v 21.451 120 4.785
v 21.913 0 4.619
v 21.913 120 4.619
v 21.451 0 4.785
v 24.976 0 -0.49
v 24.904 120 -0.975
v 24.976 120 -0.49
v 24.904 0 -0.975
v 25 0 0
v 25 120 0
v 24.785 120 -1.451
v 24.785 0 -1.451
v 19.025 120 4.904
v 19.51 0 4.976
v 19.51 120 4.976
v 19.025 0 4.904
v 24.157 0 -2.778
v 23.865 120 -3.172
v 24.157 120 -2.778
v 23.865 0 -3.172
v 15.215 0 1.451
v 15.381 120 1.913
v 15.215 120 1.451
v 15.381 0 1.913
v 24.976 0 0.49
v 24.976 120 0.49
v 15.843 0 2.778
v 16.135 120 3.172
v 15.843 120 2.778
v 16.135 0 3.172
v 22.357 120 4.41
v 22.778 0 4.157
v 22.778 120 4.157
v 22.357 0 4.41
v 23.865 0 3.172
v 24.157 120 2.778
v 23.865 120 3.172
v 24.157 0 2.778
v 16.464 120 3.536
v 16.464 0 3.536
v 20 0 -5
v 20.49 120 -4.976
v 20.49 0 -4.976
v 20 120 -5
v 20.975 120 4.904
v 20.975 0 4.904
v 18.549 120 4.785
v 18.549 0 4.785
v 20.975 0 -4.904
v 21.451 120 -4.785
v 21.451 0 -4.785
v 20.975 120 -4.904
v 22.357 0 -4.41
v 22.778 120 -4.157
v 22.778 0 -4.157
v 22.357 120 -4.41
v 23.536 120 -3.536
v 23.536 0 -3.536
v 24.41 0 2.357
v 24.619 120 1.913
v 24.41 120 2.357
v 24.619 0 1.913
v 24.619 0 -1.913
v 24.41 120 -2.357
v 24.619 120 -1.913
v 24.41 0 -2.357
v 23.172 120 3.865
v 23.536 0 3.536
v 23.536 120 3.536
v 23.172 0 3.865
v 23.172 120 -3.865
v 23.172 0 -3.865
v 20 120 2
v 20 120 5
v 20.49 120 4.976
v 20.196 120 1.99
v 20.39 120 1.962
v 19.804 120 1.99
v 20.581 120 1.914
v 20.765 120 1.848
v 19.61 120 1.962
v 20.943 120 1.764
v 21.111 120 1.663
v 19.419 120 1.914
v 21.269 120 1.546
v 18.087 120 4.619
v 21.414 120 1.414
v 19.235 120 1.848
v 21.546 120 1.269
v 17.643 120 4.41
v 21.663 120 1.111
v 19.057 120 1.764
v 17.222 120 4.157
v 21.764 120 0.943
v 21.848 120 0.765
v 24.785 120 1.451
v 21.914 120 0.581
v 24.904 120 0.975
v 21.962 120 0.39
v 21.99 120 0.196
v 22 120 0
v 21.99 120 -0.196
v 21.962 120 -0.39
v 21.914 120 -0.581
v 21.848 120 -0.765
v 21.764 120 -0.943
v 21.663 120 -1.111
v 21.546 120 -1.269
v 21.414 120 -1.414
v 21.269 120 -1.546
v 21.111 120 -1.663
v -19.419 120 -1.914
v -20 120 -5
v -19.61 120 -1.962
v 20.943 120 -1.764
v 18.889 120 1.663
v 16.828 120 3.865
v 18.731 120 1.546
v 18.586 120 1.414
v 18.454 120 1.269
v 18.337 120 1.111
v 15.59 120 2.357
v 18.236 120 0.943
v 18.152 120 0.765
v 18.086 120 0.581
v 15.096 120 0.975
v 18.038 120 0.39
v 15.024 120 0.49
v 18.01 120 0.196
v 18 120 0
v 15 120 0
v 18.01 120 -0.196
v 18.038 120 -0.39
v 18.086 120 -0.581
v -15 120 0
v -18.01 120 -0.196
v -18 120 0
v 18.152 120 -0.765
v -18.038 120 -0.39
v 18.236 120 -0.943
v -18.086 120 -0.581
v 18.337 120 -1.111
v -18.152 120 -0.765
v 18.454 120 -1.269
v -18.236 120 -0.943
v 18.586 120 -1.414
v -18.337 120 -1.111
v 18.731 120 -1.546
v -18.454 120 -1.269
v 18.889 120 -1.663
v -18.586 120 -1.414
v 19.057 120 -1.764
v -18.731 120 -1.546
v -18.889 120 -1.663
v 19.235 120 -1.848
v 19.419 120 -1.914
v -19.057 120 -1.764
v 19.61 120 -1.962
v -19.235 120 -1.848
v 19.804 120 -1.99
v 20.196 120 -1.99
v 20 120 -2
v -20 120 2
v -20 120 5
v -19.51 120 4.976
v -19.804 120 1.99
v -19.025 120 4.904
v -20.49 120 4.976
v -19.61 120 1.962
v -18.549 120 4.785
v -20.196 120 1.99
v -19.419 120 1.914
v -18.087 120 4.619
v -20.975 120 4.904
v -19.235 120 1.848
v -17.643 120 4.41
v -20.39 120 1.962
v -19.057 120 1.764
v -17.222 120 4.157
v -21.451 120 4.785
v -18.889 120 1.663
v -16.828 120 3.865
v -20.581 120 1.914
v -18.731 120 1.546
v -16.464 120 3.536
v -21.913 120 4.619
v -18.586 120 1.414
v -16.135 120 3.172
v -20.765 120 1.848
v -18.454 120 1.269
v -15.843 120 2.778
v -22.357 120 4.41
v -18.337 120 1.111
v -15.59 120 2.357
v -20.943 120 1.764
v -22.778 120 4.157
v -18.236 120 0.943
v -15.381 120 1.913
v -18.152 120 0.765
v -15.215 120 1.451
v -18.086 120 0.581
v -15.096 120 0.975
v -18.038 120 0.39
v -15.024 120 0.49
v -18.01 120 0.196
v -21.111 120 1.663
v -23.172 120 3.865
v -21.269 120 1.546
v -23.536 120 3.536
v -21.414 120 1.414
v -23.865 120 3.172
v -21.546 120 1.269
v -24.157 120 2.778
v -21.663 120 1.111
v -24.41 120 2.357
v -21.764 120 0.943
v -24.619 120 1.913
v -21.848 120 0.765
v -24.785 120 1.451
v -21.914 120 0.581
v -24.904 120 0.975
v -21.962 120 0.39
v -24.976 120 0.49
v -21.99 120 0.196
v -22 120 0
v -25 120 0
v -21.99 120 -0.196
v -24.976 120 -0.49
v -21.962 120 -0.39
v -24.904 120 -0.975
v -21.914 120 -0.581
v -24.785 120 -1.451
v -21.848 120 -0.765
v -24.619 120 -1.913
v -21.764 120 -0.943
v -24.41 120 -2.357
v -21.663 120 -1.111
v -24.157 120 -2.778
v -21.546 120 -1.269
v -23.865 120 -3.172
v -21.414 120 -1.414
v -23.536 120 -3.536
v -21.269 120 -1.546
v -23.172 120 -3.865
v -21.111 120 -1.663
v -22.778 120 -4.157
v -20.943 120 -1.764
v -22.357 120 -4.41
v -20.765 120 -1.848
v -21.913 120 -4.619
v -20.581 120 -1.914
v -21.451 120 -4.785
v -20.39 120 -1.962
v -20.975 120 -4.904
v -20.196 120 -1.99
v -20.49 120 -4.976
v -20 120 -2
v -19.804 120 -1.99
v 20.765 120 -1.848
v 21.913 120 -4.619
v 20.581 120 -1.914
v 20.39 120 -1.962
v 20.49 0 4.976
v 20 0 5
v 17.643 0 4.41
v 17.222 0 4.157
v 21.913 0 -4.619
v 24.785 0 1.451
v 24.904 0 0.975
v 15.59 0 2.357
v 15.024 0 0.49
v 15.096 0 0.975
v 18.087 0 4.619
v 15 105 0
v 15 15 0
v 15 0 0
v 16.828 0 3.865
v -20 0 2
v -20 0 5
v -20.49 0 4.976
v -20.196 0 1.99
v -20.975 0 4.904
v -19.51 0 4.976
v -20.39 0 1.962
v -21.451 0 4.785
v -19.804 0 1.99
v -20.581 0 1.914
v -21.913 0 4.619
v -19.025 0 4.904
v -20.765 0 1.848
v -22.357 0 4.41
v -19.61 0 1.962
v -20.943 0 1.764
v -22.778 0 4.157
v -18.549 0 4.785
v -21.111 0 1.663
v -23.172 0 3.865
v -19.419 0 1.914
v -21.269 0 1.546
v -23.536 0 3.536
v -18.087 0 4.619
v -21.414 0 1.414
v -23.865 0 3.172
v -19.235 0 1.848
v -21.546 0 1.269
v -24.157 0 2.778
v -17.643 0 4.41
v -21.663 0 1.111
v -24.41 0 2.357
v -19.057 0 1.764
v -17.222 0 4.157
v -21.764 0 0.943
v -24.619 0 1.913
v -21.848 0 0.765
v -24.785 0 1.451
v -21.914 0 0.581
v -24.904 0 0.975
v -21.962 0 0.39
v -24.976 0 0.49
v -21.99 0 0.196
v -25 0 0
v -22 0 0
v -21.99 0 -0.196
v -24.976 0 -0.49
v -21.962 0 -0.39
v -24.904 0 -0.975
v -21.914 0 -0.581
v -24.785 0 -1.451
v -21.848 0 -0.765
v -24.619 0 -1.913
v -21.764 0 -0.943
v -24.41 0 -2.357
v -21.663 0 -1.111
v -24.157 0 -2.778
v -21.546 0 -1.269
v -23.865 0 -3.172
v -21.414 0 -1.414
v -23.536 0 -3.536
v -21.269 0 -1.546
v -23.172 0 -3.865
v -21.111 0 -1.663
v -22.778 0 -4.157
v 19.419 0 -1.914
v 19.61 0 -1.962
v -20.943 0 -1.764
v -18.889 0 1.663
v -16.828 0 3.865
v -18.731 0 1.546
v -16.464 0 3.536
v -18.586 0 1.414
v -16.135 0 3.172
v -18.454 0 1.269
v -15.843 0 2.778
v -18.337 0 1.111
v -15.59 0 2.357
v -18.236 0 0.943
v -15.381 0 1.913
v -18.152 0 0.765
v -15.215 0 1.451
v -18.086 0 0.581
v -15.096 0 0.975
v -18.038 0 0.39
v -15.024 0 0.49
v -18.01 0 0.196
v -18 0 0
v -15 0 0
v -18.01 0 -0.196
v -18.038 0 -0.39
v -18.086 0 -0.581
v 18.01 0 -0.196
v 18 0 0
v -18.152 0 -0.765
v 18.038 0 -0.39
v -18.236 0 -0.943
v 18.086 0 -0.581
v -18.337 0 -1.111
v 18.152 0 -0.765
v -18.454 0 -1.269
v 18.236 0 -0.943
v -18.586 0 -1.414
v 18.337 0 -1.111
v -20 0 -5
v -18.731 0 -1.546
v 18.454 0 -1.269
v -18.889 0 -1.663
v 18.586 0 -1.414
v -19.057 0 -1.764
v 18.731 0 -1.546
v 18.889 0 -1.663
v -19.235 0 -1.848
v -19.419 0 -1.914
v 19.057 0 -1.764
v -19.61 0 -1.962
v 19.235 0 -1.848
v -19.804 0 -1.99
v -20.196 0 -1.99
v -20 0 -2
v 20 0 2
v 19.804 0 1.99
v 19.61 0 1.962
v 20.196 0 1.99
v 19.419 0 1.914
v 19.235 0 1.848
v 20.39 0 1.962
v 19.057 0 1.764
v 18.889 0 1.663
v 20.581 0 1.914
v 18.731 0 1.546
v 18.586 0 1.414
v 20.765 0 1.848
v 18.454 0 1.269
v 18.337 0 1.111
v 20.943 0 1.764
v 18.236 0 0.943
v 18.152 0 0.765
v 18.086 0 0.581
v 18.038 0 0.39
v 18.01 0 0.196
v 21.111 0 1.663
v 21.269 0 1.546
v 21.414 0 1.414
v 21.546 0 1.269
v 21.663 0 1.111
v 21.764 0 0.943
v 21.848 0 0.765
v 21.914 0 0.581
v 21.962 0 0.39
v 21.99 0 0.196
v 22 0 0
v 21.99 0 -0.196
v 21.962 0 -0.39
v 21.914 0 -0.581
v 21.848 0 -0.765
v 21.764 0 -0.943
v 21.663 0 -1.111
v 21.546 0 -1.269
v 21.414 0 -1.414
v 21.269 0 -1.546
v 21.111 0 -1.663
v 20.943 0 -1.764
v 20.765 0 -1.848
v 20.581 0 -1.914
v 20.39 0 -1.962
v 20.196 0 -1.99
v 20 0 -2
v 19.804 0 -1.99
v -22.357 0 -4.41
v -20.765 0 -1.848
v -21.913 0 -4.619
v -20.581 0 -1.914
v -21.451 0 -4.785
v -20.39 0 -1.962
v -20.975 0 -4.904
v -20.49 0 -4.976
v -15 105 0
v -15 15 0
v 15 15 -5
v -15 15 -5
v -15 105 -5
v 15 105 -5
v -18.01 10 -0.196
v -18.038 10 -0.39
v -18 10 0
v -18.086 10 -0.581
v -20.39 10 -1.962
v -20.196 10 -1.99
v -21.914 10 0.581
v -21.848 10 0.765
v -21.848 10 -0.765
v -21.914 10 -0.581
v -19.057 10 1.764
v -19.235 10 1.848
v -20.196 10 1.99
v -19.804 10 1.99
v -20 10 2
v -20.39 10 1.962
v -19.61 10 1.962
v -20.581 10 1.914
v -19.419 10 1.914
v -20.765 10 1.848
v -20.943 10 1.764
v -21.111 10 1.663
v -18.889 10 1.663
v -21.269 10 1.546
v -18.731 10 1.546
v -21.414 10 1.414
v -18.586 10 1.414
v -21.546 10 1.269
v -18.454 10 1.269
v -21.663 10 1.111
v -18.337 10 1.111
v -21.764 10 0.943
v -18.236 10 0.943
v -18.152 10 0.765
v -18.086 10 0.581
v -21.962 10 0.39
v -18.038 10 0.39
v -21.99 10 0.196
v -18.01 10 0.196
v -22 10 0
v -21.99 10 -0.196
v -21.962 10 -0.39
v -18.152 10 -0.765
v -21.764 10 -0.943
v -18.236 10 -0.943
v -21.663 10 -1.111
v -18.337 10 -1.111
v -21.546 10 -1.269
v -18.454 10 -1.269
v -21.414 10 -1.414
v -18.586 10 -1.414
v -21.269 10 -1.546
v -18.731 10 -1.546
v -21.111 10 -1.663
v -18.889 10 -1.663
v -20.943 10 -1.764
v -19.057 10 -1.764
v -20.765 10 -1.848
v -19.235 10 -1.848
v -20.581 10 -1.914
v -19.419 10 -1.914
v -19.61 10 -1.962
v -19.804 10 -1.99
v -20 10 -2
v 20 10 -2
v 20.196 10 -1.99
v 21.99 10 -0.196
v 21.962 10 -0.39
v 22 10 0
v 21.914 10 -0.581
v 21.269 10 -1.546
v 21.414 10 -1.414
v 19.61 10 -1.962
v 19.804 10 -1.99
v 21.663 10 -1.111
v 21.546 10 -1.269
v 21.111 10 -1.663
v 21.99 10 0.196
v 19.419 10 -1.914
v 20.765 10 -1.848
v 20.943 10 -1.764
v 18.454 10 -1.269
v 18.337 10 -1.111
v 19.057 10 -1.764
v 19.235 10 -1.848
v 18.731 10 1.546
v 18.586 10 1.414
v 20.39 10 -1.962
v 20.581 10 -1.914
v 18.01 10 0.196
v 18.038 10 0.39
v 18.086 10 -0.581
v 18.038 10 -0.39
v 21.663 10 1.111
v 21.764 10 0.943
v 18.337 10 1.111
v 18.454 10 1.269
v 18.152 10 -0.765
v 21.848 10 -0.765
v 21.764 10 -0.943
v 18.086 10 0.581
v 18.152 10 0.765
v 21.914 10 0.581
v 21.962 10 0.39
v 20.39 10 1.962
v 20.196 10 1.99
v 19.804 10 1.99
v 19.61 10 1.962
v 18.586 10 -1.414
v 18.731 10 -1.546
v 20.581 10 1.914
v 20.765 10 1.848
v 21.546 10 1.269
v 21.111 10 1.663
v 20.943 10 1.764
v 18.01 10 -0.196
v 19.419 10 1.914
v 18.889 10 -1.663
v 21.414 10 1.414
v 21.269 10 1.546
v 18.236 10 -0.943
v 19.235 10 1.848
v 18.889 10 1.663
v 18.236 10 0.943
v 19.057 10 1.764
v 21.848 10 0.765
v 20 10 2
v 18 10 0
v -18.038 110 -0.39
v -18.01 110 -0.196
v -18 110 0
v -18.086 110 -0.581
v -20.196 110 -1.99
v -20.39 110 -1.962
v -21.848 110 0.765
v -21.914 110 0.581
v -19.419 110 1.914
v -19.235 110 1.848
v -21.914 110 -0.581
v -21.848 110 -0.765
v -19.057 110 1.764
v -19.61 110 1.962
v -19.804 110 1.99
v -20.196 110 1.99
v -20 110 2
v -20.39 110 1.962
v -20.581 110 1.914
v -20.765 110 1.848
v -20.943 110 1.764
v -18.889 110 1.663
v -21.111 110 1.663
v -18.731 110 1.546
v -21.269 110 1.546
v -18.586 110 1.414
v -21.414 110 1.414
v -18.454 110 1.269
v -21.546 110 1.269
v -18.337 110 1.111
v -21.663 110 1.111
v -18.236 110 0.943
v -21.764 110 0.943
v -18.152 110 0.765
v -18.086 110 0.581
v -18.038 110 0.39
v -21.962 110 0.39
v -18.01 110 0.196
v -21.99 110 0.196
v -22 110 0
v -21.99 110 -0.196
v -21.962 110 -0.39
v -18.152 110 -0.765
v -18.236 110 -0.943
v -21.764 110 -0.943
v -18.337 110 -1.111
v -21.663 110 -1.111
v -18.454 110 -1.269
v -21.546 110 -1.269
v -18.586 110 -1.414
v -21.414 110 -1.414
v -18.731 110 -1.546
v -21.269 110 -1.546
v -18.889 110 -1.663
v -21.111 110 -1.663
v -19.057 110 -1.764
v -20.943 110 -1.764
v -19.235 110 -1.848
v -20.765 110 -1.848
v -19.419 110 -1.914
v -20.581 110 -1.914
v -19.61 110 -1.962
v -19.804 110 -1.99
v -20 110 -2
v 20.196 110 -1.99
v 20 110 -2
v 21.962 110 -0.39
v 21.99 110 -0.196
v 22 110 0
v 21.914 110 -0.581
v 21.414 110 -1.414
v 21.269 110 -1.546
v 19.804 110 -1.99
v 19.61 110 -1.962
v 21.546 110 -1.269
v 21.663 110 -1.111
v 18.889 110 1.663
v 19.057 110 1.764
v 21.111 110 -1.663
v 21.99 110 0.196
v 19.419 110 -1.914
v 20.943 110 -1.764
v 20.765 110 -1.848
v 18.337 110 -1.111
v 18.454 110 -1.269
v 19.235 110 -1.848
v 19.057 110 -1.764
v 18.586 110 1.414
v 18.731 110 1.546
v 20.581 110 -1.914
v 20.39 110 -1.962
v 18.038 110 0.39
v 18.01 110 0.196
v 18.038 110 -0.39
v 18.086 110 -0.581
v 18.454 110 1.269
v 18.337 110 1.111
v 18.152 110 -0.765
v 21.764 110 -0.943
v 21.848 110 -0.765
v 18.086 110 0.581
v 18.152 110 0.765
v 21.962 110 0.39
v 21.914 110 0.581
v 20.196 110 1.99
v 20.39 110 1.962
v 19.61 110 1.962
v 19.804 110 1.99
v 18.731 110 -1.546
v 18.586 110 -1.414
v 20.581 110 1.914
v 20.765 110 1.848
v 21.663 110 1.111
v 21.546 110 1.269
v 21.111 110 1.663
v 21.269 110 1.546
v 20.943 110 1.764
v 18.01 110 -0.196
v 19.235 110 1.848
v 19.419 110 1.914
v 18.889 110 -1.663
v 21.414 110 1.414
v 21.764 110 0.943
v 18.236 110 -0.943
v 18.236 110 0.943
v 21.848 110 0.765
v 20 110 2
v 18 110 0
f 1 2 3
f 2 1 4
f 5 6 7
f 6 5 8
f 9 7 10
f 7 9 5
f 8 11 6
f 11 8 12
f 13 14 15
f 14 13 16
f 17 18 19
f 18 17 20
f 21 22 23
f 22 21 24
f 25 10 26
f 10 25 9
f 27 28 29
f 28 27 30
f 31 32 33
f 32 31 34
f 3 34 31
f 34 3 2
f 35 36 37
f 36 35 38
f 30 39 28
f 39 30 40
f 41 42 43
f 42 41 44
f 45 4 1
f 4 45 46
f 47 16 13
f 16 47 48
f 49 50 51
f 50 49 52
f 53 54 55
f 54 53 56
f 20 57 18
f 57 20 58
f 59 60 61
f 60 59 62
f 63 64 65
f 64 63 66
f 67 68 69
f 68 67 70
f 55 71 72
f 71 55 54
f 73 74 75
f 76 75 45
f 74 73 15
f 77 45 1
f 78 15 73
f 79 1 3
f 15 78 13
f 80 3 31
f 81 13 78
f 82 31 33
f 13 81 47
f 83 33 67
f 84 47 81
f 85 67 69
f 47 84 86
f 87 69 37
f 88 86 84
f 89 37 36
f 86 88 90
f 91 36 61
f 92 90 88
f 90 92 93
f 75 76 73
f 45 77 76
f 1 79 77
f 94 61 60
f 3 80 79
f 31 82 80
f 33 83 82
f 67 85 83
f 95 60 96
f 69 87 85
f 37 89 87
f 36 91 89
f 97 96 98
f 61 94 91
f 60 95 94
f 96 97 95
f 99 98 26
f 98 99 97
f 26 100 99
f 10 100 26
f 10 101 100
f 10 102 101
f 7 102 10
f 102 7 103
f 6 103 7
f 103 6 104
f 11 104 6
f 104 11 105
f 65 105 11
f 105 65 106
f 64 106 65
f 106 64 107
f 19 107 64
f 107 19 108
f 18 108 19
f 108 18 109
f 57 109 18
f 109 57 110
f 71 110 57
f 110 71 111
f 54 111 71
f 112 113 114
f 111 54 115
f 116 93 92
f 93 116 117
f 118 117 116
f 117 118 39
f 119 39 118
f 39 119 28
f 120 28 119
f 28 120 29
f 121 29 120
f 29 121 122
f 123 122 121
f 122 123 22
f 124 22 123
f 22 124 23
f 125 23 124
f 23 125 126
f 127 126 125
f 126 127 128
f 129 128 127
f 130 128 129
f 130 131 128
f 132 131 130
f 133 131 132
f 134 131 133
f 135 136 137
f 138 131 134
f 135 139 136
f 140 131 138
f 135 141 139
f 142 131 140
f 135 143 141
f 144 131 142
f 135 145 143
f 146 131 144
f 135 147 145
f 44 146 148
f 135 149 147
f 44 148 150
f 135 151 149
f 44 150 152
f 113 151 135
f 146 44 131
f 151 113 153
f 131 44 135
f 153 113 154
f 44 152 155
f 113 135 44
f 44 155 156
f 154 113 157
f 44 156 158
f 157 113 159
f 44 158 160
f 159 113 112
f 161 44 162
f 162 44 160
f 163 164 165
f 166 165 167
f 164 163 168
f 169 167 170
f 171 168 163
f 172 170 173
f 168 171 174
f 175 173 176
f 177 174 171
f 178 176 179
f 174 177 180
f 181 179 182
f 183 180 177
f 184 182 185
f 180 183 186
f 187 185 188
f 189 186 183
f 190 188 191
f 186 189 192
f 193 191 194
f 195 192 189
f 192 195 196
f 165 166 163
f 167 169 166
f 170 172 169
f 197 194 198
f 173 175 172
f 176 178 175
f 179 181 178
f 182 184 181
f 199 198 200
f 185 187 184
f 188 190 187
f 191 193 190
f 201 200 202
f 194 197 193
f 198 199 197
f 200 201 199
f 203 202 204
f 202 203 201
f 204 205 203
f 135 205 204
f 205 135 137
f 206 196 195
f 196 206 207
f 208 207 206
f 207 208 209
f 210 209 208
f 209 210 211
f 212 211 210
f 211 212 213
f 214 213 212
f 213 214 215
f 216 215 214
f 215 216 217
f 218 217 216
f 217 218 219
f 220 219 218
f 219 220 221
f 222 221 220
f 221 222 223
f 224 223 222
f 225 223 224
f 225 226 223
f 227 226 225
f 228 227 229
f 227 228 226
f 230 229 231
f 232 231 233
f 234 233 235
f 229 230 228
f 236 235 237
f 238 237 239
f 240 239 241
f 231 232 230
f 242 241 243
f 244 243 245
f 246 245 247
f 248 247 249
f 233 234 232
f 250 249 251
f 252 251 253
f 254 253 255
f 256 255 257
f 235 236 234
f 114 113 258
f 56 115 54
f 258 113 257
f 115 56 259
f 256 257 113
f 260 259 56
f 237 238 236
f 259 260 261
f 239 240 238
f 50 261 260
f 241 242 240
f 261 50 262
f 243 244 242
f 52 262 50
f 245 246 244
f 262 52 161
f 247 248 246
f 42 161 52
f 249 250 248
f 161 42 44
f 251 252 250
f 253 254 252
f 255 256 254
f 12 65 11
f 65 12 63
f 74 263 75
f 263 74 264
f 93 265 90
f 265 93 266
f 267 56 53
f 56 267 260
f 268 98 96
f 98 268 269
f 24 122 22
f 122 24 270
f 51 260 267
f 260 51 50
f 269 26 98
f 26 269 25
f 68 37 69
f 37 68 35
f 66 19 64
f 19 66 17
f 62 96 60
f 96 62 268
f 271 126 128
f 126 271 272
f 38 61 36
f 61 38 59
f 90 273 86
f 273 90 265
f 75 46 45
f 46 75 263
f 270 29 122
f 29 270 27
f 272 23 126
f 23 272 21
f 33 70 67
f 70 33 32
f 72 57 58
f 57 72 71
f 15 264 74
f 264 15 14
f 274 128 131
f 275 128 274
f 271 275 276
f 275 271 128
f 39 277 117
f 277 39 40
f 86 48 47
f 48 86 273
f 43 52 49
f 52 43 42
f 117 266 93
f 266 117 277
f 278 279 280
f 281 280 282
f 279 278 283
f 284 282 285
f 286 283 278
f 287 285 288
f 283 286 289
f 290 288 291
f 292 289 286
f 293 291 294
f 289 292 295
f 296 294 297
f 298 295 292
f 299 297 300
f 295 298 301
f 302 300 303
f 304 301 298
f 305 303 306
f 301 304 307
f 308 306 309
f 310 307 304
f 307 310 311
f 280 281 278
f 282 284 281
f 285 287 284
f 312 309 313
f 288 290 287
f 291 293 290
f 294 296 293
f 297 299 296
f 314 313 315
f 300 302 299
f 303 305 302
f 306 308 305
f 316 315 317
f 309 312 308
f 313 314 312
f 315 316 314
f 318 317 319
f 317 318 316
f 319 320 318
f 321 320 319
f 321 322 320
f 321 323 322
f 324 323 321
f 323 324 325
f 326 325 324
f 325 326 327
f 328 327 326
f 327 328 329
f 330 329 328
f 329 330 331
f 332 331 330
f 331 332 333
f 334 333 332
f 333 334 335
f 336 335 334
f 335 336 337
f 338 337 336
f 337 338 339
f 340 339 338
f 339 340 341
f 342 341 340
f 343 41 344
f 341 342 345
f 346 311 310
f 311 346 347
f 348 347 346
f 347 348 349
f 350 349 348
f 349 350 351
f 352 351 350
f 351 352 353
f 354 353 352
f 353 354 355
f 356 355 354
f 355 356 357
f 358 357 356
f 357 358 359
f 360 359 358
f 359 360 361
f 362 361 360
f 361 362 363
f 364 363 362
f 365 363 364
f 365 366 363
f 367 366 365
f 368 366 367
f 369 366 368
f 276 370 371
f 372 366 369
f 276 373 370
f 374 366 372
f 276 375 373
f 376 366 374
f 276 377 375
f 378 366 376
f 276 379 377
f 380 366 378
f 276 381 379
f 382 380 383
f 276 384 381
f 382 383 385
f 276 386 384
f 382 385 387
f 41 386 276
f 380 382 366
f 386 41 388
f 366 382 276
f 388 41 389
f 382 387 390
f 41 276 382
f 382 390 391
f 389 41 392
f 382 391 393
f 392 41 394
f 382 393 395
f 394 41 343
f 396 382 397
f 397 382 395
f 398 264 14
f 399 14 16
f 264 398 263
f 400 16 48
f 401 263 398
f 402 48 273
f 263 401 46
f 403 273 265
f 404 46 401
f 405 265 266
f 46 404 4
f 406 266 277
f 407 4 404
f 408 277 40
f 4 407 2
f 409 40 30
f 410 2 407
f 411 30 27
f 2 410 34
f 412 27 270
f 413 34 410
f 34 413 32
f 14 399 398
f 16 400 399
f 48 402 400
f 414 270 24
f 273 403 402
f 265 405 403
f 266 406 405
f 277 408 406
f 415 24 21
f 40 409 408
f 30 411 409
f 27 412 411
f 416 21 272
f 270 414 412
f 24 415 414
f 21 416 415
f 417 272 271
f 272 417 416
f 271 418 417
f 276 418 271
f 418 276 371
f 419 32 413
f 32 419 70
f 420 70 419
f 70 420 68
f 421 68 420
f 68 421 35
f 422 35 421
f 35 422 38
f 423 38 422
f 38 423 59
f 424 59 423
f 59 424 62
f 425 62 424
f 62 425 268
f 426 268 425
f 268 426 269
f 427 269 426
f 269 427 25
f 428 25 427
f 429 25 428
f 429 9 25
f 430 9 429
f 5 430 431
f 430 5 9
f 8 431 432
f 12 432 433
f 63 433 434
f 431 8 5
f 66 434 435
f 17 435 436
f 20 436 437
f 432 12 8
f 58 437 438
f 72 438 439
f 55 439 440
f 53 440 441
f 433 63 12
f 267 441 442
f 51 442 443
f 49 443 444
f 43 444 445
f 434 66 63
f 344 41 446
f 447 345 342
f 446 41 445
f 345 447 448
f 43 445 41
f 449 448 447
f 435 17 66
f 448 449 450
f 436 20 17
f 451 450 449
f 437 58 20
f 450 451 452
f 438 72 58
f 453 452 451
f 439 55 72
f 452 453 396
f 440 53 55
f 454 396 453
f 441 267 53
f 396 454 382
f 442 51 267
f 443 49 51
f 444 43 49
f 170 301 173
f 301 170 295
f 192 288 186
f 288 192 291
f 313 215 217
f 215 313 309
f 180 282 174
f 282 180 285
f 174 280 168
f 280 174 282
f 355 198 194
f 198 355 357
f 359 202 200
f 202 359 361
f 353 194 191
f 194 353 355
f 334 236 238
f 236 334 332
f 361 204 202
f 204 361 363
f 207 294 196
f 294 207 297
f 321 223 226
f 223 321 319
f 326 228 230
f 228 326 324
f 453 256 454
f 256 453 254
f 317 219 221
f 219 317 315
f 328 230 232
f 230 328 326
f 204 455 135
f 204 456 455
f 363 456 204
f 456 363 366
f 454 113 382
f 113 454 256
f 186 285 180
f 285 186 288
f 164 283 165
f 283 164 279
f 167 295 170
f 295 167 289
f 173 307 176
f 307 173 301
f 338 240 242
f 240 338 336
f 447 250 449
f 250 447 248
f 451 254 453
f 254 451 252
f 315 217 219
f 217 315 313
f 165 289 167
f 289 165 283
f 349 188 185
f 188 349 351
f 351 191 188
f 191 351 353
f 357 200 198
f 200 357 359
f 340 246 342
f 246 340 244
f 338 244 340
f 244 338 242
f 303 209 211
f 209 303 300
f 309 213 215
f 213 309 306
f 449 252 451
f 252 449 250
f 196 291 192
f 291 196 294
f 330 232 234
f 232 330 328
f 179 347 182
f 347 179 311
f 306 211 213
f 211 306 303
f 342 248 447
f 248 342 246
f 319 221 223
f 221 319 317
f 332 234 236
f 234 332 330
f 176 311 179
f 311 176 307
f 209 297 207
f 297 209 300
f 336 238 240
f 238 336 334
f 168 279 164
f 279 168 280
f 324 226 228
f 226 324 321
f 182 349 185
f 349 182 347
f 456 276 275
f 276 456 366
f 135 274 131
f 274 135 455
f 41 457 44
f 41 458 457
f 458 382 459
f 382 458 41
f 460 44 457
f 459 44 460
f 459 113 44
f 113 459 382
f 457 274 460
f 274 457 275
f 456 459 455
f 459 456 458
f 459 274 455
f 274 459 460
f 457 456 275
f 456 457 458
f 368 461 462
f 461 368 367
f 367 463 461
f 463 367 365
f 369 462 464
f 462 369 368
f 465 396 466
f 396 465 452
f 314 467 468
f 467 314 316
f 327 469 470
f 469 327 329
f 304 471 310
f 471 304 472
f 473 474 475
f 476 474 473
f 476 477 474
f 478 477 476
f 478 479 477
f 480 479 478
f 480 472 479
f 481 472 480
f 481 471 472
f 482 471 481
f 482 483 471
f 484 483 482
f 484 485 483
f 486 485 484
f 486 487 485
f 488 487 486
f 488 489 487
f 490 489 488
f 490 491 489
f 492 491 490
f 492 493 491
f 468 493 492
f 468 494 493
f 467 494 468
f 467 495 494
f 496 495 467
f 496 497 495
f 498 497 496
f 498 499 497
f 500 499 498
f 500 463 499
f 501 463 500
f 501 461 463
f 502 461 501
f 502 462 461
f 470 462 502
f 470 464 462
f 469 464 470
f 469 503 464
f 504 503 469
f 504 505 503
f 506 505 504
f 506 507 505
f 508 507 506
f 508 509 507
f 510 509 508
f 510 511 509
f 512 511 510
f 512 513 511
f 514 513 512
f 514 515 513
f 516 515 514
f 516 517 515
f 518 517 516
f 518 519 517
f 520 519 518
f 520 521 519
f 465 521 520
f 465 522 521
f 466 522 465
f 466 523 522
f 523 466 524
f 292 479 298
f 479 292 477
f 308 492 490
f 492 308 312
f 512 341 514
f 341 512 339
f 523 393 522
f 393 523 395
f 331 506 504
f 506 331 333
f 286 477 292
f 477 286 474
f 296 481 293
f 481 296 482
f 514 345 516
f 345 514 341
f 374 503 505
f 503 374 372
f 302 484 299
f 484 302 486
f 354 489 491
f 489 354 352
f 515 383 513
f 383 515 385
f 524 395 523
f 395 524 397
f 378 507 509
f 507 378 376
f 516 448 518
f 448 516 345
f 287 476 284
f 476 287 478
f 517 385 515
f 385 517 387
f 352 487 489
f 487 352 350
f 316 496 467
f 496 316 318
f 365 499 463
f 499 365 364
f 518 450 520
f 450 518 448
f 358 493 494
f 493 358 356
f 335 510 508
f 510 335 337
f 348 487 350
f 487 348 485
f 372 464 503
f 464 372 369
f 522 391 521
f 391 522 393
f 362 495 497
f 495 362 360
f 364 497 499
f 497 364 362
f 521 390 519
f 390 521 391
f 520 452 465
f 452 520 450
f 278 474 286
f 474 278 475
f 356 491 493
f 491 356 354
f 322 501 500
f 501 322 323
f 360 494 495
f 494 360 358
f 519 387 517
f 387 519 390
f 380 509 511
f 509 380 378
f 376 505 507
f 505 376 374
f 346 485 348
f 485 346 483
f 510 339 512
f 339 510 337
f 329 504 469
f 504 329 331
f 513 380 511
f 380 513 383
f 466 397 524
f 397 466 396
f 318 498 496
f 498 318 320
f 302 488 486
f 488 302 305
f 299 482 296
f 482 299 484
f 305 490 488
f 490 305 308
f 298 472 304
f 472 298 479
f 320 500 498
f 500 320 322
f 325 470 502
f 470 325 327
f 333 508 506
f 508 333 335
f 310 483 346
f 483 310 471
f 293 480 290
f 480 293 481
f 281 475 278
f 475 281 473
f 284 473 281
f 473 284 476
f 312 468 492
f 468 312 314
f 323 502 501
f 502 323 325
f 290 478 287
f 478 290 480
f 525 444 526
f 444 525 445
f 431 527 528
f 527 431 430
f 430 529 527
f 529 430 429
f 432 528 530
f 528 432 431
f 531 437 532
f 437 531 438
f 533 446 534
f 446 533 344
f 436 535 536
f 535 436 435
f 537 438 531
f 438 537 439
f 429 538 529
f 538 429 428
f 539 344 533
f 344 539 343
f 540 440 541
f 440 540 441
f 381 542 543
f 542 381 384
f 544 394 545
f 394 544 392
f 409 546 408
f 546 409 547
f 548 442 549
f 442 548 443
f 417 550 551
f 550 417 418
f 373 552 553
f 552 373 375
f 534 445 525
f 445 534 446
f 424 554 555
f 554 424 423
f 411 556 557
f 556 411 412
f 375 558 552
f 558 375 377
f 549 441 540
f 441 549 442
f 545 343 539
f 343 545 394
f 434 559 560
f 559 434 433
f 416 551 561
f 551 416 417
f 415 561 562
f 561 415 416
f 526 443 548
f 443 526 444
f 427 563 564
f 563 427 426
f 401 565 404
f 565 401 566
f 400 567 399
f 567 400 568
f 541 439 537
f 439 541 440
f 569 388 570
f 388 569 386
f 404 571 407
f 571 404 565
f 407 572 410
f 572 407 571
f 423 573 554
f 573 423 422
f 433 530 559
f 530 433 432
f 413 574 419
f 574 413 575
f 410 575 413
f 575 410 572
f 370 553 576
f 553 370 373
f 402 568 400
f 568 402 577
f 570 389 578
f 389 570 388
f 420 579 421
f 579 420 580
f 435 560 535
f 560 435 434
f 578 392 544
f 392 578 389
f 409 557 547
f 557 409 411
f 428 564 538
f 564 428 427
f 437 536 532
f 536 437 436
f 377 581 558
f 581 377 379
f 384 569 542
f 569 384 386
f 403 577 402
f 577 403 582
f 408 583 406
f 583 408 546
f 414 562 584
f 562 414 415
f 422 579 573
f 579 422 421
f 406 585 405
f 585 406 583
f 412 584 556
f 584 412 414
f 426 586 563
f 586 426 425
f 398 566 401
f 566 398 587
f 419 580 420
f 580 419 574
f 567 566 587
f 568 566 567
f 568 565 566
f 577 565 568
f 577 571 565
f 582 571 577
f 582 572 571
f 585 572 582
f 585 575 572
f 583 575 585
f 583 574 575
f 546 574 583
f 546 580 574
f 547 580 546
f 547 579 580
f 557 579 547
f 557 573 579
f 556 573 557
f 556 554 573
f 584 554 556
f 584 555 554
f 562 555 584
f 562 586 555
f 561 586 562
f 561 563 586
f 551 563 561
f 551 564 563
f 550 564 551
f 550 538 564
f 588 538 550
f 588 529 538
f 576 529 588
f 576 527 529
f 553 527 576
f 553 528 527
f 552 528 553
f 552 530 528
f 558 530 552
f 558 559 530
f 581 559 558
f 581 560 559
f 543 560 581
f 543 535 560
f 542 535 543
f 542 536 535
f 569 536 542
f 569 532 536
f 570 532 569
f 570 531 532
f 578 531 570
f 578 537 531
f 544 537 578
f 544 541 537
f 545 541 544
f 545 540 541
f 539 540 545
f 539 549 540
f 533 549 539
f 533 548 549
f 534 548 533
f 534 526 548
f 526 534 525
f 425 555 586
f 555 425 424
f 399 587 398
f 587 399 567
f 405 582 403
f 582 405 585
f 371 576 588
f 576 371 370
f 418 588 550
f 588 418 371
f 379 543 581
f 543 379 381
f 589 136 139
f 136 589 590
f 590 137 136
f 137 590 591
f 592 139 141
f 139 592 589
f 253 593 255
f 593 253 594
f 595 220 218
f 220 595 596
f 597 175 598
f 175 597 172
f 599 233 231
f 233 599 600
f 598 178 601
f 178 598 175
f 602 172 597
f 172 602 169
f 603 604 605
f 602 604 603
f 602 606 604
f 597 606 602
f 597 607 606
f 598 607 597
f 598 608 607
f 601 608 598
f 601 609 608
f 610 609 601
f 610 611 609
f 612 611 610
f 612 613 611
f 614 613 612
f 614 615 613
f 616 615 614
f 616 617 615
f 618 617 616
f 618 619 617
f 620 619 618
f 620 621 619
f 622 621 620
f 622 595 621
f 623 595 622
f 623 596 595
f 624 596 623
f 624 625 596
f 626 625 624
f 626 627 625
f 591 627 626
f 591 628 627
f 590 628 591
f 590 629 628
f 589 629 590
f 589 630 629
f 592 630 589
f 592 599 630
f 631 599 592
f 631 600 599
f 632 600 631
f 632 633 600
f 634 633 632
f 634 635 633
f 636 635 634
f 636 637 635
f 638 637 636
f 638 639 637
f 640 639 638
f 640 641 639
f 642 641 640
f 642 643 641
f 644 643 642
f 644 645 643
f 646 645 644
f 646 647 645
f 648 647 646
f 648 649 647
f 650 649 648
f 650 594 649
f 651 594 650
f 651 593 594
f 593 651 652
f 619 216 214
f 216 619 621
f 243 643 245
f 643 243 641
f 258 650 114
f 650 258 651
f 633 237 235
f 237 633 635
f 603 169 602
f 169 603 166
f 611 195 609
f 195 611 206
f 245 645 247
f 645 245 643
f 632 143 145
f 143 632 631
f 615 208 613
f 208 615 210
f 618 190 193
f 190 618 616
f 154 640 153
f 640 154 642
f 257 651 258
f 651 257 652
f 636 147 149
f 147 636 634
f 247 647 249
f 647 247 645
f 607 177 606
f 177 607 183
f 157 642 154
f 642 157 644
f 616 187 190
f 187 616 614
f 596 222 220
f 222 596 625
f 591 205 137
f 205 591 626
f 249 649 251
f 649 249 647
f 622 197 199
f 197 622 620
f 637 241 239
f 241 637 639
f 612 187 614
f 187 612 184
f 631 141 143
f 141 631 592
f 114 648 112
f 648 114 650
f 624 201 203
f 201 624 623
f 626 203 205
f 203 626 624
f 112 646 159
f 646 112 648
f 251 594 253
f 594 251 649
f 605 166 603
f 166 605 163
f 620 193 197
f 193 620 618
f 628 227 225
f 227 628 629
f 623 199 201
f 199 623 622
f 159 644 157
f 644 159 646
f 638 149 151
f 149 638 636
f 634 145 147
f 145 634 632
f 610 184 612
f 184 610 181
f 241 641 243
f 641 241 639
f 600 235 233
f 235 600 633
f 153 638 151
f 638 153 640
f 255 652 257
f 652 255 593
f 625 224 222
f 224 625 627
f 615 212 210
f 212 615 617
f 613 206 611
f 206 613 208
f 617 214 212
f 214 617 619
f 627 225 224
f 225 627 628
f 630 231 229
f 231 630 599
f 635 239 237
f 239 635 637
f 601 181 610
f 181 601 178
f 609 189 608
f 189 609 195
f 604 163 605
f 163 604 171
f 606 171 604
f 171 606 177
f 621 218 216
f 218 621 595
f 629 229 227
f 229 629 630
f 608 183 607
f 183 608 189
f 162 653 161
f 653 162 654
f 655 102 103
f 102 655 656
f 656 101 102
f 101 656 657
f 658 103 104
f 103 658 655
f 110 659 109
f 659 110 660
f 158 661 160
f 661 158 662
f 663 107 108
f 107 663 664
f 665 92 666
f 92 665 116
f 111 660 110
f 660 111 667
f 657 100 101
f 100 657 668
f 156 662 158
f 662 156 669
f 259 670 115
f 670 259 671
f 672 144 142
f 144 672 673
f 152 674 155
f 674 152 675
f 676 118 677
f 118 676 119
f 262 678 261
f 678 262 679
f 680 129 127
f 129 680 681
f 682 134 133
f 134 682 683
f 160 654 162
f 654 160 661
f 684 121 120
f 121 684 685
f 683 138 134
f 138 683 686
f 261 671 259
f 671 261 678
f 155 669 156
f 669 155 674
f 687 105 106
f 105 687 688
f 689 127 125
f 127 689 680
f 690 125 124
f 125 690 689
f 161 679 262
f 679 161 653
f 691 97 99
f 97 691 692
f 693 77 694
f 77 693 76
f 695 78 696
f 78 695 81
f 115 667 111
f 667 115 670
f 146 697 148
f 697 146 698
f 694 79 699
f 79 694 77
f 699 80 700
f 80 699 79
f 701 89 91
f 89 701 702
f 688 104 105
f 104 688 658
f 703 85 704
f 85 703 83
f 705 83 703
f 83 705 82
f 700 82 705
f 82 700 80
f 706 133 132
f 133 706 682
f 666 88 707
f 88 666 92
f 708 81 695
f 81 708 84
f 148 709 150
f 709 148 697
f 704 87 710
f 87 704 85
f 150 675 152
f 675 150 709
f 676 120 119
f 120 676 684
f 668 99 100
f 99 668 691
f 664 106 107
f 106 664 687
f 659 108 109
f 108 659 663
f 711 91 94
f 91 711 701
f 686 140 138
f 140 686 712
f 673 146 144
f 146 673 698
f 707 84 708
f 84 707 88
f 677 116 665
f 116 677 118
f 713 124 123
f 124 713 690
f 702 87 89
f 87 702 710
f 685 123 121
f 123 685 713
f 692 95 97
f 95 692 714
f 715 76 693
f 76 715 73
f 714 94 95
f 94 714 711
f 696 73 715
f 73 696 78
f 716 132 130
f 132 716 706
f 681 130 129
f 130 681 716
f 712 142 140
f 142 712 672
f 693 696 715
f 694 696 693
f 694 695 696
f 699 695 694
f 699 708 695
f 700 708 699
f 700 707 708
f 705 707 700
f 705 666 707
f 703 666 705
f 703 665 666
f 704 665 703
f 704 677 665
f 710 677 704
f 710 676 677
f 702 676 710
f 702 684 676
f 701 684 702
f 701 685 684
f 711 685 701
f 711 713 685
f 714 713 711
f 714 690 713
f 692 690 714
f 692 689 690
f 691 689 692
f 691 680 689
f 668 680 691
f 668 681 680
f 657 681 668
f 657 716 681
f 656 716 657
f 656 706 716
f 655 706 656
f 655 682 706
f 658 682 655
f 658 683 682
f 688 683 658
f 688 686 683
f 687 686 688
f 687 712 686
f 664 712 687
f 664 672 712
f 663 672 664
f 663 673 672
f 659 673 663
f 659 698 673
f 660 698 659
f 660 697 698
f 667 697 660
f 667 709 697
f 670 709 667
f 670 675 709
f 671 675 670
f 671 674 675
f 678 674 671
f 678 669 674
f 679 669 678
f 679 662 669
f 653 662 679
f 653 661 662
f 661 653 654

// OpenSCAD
$fn = 64;

frame_length = 120;

sh_through = 4;
sh_countersink = 3;
sh_thread = 4.5; // 2.7 for tapping, 4.5 for brass insert


difference() {
    union(){
    //hull() {
        translate([40/2,0,0])rotate([-90,0,0])cylinder(frame_length, 5, 5);
        translate([-40/2,0,0])rotate([-90,0,0])cylinder(frame_length, 5, 5);
    //}
        translate([(-40/2),0,-5])cube([40,frame_length,5]);
    }
    
    translate([(-30/2),15,-50])cube([30,frame_length-30,100]);
    translate([(-30/2),-5,0])cube([30,frame_length+10,100]);
    
    translate([-40/2,-5,0])rotate([-90,0,0])cylinder(15,sh_through/2,sh_through/2);
    translate([40/2,-5,0])rotate([-90,0,0])cylinder(15,sh_through/2,sh_through/2);
    translate([-40/2,frame_length-10,0])rotate([-90,0,0])cylinder(15,sh_through/2,sh_through/2);
    translate([40/2,frame_length-10,0])rotate([-90,0,0])cylinder(15,sh_through/2,sh_through/2);
}
